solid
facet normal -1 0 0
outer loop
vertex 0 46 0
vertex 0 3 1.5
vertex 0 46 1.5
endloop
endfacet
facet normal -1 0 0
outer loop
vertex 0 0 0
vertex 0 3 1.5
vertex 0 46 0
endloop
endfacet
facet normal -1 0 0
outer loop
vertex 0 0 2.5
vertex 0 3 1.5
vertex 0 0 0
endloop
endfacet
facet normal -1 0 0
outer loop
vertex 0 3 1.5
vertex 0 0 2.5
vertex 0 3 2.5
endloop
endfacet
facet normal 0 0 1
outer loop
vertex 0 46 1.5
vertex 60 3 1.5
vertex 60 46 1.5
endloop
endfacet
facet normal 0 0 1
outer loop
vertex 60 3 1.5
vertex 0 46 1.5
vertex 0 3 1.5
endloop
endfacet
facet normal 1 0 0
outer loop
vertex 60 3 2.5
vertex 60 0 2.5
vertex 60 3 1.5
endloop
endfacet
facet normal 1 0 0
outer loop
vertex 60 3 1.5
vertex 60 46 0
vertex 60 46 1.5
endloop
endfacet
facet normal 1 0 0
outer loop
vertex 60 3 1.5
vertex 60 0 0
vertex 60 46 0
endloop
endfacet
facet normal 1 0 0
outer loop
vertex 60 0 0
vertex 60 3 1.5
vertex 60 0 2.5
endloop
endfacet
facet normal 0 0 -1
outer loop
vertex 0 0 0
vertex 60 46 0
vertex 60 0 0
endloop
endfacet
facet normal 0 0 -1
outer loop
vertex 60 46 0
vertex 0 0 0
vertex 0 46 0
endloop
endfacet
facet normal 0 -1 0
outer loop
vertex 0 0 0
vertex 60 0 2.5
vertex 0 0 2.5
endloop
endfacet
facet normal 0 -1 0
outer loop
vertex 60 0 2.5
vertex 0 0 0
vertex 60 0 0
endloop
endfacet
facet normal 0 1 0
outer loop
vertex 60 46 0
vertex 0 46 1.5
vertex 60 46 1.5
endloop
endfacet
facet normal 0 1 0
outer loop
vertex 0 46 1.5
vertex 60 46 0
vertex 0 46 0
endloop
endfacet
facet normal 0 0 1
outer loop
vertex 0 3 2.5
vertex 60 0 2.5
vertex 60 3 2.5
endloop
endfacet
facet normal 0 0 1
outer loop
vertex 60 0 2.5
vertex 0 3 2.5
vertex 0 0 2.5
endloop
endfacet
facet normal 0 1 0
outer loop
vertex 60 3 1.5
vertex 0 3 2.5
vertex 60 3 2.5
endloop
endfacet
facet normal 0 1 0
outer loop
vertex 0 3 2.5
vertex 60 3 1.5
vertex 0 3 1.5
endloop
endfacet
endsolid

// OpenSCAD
cube([60, 46, 1.5]);
translate([0,0,1.5])
    cube([60, 3, 1]);
